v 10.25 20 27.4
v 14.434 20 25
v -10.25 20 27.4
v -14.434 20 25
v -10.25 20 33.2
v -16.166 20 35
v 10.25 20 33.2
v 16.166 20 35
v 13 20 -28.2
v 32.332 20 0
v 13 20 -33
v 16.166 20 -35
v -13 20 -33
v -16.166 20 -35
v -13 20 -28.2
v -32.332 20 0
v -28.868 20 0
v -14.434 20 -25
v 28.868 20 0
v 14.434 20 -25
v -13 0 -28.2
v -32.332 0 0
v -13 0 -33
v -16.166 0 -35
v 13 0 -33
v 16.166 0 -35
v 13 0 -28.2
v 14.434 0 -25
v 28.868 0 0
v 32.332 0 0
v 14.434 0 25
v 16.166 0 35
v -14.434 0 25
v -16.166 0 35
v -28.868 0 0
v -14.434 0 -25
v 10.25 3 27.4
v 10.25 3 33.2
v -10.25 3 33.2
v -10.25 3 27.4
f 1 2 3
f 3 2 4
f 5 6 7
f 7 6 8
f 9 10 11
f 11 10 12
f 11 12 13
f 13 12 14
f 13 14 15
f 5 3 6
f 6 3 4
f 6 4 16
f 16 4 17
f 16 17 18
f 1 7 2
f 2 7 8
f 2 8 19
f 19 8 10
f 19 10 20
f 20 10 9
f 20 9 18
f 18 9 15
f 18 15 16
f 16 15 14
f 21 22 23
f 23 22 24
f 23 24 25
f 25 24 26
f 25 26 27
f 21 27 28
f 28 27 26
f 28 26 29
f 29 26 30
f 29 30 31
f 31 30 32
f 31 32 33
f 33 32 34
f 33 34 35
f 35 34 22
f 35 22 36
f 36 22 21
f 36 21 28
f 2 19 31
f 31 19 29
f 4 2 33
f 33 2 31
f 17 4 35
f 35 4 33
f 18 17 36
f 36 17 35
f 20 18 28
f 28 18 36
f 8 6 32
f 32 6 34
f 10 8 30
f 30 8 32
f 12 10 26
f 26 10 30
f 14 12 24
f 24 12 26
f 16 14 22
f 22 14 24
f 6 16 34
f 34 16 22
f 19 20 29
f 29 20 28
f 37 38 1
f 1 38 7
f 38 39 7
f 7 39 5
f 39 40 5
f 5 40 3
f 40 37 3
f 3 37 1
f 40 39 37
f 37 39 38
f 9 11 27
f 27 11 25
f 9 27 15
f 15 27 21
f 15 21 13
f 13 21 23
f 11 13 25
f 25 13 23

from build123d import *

# Parameters (mm, degrees)
BOSS_EXTRUDE1_DEPTH = 20
SKETCH2_W           = 20.5
SKETCH2_H           = 5.8
CUT_EXTRUDE1_DEPTH  = 17
SKETCH2_3_W         = 26
SKETCH2_3_H         = 4.8
CUT_EXTRUDE2_DEPTH  = 26


with BuildPart() as part:
    # Sketch1 → Boss-Extrude1 (new body)
    with BuildSketch(Plane(origin=(0, 0, 0), x_dir=(1, 0, 0), z_dir=(0, 1, 0))):
        Polygon((16.165807537, -35), (32.331615075, 0), (16.165807537, 35), (-16.165807537, 35), (-32.331615075, 0), (-16.165807537, -35), align=None)
        Polygon((14.43375673, 25), (28.867513459, 0), (14.43375673, -25), (-14.43375673, -25), (-28.867513459, 0), (-14.43375673, 25), align=None, mode=Mode.SUBTRACT)
    extrude(amount=BOSS_EXTRUDE1_DEPTH)

    # Sketch2 → Cut-Extrude1 (cut)
    with BuildSketch(Plane(origin=(0, 20, 0), x_dir=(1, 0, 0), z_dir=(0, 1, 0))):
        with Locations((0, -30.3)):
            Rectangle(SKETCH2_W, SKETCH2_H)
    extrude(amount=-CUT_EXTRUDE1_DEPTH, mode=Mode.SUBTRACT)

    # Sketch2<3> → Cut-Extrude2 (cut)
    with BuildSketch(Plane(origin=(0, 20, 0), x_dir=(1, 0, 0), z_dir=(0, 1, 0))):
        with Locations((0, 30.6)):
            Rectangle(SKETCH2_3_W, SKETCH2_3_H)
    extrude(amount=-CUT_EXTRUDE2_DEPTH, mode=Mode.SUBTRACT)


solid = part.part
